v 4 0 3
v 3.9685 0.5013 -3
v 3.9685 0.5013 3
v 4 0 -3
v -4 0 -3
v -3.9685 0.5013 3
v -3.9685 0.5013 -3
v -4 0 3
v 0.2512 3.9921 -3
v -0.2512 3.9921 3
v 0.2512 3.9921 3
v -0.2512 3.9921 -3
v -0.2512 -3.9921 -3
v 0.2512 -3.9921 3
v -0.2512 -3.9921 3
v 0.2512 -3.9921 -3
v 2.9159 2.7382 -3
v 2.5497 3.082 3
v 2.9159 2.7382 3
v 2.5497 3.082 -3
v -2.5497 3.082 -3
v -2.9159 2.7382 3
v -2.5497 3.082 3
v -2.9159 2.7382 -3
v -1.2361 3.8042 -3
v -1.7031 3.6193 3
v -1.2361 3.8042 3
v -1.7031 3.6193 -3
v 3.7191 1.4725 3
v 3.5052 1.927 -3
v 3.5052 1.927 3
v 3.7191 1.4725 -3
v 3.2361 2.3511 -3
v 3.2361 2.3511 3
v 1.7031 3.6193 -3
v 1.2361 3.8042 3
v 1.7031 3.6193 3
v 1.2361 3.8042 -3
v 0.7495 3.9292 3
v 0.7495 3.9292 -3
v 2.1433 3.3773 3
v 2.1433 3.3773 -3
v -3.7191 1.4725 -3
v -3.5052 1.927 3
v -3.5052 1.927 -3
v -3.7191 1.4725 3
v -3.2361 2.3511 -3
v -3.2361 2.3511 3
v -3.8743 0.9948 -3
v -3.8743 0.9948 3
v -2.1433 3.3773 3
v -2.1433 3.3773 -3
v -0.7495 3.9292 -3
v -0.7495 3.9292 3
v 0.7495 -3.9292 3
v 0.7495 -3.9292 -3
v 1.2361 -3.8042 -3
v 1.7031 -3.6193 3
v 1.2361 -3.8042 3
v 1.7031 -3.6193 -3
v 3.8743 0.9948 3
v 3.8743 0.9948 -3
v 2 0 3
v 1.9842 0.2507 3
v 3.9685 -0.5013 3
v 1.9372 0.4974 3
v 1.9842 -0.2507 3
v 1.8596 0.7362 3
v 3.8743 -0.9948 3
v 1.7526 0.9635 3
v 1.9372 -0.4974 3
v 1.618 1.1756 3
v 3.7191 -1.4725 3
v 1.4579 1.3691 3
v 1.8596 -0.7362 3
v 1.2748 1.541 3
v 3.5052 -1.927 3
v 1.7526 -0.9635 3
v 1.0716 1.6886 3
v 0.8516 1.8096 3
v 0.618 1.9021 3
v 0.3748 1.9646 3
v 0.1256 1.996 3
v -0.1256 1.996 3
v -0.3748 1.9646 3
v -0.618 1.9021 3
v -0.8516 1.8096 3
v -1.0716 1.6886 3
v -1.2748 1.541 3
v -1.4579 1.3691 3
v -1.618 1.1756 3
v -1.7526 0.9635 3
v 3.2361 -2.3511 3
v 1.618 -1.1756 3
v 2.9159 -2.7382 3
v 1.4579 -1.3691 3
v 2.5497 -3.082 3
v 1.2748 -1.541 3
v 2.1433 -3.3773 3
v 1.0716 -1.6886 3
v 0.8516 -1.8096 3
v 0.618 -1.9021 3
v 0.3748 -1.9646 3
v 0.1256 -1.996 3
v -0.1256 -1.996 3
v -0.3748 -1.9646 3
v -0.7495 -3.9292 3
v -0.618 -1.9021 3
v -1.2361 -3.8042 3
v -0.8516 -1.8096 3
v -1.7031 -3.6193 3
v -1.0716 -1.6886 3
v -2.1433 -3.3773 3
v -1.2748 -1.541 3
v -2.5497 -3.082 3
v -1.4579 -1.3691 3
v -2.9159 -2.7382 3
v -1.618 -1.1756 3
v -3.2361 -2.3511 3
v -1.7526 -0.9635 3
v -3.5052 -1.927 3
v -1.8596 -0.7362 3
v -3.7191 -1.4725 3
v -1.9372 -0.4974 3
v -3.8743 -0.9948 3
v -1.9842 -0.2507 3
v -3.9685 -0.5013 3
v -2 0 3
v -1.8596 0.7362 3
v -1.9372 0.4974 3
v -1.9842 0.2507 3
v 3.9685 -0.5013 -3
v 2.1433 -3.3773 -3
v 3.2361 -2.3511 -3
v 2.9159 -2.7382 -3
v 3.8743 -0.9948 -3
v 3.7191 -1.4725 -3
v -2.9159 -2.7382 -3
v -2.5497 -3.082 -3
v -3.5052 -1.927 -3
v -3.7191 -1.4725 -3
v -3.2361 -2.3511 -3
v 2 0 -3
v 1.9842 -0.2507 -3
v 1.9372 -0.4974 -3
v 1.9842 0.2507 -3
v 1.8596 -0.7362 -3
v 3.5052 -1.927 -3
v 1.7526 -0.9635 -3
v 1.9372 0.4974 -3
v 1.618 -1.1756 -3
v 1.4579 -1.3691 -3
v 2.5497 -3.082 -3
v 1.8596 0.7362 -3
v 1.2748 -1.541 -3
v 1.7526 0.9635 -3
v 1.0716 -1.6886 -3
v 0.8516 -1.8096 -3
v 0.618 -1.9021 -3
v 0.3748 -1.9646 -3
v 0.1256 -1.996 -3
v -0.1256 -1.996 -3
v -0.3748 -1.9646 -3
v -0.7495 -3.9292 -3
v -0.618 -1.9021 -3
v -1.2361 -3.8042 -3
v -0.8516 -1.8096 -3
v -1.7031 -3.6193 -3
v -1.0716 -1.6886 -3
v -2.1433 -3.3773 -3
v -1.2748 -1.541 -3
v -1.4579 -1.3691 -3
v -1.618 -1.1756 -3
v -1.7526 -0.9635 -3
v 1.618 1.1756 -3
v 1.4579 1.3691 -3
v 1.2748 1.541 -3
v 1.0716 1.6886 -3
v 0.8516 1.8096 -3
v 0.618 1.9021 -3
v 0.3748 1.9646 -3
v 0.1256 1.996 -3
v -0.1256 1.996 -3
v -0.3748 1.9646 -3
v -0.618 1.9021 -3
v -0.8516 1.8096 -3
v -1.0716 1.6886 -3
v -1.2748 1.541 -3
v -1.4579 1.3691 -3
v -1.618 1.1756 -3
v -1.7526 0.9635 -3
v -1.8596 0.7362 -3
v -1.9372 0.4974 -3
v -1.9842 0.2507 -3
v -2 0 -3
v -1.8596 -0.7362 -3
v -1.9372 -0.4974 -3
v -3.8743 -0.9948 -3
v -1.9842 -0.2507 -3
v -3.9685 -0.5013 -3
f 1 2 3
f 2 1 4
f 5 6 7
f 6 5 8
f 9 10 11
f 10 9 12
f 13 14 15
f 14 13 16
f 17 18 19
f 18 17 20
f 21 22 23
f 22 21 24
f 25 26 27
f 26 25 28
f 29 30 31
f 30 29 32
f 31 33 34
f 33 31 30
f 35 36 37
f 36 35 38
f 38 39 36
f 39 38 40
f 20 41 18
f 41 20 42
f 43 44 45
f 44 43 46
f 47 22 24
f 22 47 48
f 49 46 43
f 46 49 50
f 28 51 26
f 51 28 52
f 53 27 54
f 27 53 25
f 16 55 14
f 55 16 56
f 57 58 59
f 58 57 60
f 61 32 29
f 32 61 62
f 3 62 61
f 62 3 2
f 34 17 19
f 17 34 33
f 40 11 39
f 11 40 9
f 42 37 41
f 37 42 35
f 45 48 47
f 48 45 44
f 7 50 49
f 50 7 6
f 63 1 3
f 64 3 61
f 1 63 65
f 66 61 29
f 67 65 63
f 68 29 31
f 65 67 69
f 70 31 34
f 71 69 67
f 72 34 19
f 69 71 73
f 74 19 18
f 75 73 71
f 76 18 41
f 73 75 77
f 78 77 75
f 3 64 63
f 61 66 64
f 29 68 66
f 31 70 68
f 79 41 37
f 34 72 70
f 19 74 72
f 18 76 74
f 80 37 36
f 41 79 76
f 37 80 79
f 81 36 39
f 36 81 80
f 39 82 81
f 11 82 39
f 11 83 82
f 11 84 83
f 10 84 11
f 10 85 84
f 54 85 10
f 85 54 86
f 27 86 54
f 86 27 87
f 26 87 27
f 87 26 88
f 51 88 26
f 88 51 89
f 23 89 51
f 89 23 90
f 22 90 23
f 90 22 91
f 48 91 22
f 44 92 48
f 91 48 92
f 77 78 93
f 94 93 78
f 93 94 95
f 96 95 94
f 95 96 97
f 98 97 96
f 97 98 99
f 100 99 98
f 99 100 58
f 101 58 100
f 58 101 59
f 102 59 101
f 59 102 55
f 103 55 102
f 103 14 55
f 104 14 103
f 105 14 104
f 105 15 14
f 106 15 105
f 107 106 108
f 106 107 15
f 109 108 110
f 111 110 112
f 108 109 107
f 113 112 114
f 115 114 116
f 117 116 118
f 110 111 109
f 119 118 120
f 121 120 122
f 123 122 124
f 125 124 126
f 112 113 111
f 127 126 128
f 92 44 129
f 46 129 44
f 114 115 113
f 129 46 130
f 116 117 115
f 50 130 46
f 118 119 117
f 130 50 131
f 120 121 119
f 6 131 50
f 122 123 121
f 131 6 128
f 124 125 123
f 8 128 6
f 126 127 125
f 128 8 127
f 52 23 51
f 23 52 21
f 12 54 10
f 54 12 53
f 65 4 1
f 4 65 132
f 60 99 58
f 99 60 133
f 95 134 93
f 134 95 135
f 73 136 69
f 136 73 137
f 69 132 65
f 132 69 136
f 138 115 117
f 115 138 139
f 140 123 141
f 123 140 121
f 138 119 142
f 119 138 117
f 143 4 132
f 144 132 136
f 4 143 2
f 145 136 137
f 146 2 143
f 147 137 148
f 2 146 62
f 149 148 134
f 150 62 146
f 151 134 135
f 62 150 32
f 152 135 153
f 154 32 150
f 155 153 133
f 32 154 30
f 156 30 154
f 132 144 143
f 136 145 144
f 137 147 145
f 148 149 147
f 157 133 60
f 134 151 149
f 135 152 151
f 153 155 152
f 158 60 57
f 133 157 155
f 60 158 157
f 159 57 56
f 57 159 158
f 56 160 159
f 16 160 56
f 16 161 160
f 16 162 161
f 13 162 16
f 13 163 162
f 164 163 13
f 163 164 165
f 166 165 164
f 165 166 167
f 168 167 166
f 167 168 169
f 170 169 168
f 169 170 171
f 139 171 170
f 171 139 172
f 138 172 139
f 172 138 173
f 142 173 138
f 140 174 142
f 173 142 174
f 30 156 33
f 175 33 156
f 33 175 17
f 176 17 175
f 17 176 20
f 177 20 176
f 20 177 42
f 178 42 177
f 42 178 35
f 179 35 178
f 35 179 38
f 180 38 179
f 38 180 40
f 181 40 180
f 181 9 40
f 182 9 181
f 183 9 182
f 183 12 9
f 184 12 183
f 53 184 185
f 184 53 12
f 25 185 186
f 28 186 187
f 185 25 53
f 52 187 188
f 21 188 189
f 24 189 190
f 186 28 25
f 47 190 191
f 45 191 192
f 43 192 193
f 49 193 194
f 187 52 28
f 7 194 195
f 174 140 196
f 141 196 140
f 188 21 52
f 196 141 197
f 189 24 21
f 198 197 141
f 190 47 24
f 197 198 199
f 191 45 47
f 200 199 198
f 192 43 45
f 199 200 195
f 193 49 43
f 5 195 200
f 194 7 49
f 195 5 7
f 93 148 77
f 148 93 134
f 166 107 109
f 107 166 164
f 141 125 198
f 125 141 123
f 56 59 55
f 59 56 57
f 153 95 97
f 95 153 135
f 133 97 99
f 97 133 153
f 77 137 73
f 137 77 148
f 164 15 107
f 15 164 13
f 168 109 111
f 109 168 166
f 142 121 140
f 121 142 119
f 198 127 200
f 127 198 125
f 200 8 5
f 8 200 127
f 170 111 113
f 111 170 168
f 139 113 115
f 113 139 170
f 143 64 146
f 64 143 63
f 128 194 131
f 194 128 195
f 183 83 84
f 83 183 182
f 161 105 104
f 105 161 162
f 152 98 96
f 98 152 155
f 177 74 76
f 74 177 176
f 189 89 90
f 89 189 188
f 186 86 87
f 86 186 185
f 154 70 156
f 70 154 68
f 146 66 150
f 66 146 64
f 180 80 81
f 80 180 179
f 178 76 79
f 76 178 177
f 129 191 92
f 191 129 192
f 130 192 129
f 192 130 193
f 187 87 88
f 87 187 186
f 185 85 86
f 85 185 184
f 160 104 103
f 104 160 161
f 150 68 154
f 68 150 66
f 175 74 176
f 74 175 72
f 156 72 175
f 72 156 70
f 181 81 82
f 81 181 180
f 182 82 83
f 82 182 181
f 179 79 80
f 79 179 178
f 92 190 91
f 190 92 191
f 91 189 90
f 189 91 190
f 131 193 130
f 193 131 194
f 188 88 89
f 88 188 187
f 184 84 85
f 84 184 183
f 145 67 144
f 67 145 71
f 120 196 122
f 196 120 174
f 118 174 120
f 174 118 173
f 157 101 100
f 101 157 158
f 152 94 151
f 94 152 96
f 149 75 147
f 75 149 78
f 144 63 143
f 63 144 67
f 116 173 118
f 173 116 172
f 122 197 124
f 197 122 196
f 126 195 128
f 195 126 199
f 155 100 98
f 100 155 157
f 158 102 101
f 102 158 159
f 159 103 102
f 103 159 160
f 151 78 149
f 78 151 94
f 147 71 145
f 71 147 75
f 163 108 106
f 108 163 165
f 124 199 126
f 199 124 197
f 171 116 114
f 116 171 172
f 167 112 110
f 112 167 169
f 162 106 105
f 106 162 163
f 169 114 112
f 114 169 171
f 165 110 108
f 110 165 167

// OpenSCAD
$fn = 50;


difference() {
	union() {
		translate(v = [0, 0, -3.0000000000]) {
			cylinder(h = 6, r = 4.0000000000);
		}
	}
	union() {
		translate(v = [0, 0, -100.0000000000]) {
			cylinder(h = 200, r = 2);
		}
	}
}
